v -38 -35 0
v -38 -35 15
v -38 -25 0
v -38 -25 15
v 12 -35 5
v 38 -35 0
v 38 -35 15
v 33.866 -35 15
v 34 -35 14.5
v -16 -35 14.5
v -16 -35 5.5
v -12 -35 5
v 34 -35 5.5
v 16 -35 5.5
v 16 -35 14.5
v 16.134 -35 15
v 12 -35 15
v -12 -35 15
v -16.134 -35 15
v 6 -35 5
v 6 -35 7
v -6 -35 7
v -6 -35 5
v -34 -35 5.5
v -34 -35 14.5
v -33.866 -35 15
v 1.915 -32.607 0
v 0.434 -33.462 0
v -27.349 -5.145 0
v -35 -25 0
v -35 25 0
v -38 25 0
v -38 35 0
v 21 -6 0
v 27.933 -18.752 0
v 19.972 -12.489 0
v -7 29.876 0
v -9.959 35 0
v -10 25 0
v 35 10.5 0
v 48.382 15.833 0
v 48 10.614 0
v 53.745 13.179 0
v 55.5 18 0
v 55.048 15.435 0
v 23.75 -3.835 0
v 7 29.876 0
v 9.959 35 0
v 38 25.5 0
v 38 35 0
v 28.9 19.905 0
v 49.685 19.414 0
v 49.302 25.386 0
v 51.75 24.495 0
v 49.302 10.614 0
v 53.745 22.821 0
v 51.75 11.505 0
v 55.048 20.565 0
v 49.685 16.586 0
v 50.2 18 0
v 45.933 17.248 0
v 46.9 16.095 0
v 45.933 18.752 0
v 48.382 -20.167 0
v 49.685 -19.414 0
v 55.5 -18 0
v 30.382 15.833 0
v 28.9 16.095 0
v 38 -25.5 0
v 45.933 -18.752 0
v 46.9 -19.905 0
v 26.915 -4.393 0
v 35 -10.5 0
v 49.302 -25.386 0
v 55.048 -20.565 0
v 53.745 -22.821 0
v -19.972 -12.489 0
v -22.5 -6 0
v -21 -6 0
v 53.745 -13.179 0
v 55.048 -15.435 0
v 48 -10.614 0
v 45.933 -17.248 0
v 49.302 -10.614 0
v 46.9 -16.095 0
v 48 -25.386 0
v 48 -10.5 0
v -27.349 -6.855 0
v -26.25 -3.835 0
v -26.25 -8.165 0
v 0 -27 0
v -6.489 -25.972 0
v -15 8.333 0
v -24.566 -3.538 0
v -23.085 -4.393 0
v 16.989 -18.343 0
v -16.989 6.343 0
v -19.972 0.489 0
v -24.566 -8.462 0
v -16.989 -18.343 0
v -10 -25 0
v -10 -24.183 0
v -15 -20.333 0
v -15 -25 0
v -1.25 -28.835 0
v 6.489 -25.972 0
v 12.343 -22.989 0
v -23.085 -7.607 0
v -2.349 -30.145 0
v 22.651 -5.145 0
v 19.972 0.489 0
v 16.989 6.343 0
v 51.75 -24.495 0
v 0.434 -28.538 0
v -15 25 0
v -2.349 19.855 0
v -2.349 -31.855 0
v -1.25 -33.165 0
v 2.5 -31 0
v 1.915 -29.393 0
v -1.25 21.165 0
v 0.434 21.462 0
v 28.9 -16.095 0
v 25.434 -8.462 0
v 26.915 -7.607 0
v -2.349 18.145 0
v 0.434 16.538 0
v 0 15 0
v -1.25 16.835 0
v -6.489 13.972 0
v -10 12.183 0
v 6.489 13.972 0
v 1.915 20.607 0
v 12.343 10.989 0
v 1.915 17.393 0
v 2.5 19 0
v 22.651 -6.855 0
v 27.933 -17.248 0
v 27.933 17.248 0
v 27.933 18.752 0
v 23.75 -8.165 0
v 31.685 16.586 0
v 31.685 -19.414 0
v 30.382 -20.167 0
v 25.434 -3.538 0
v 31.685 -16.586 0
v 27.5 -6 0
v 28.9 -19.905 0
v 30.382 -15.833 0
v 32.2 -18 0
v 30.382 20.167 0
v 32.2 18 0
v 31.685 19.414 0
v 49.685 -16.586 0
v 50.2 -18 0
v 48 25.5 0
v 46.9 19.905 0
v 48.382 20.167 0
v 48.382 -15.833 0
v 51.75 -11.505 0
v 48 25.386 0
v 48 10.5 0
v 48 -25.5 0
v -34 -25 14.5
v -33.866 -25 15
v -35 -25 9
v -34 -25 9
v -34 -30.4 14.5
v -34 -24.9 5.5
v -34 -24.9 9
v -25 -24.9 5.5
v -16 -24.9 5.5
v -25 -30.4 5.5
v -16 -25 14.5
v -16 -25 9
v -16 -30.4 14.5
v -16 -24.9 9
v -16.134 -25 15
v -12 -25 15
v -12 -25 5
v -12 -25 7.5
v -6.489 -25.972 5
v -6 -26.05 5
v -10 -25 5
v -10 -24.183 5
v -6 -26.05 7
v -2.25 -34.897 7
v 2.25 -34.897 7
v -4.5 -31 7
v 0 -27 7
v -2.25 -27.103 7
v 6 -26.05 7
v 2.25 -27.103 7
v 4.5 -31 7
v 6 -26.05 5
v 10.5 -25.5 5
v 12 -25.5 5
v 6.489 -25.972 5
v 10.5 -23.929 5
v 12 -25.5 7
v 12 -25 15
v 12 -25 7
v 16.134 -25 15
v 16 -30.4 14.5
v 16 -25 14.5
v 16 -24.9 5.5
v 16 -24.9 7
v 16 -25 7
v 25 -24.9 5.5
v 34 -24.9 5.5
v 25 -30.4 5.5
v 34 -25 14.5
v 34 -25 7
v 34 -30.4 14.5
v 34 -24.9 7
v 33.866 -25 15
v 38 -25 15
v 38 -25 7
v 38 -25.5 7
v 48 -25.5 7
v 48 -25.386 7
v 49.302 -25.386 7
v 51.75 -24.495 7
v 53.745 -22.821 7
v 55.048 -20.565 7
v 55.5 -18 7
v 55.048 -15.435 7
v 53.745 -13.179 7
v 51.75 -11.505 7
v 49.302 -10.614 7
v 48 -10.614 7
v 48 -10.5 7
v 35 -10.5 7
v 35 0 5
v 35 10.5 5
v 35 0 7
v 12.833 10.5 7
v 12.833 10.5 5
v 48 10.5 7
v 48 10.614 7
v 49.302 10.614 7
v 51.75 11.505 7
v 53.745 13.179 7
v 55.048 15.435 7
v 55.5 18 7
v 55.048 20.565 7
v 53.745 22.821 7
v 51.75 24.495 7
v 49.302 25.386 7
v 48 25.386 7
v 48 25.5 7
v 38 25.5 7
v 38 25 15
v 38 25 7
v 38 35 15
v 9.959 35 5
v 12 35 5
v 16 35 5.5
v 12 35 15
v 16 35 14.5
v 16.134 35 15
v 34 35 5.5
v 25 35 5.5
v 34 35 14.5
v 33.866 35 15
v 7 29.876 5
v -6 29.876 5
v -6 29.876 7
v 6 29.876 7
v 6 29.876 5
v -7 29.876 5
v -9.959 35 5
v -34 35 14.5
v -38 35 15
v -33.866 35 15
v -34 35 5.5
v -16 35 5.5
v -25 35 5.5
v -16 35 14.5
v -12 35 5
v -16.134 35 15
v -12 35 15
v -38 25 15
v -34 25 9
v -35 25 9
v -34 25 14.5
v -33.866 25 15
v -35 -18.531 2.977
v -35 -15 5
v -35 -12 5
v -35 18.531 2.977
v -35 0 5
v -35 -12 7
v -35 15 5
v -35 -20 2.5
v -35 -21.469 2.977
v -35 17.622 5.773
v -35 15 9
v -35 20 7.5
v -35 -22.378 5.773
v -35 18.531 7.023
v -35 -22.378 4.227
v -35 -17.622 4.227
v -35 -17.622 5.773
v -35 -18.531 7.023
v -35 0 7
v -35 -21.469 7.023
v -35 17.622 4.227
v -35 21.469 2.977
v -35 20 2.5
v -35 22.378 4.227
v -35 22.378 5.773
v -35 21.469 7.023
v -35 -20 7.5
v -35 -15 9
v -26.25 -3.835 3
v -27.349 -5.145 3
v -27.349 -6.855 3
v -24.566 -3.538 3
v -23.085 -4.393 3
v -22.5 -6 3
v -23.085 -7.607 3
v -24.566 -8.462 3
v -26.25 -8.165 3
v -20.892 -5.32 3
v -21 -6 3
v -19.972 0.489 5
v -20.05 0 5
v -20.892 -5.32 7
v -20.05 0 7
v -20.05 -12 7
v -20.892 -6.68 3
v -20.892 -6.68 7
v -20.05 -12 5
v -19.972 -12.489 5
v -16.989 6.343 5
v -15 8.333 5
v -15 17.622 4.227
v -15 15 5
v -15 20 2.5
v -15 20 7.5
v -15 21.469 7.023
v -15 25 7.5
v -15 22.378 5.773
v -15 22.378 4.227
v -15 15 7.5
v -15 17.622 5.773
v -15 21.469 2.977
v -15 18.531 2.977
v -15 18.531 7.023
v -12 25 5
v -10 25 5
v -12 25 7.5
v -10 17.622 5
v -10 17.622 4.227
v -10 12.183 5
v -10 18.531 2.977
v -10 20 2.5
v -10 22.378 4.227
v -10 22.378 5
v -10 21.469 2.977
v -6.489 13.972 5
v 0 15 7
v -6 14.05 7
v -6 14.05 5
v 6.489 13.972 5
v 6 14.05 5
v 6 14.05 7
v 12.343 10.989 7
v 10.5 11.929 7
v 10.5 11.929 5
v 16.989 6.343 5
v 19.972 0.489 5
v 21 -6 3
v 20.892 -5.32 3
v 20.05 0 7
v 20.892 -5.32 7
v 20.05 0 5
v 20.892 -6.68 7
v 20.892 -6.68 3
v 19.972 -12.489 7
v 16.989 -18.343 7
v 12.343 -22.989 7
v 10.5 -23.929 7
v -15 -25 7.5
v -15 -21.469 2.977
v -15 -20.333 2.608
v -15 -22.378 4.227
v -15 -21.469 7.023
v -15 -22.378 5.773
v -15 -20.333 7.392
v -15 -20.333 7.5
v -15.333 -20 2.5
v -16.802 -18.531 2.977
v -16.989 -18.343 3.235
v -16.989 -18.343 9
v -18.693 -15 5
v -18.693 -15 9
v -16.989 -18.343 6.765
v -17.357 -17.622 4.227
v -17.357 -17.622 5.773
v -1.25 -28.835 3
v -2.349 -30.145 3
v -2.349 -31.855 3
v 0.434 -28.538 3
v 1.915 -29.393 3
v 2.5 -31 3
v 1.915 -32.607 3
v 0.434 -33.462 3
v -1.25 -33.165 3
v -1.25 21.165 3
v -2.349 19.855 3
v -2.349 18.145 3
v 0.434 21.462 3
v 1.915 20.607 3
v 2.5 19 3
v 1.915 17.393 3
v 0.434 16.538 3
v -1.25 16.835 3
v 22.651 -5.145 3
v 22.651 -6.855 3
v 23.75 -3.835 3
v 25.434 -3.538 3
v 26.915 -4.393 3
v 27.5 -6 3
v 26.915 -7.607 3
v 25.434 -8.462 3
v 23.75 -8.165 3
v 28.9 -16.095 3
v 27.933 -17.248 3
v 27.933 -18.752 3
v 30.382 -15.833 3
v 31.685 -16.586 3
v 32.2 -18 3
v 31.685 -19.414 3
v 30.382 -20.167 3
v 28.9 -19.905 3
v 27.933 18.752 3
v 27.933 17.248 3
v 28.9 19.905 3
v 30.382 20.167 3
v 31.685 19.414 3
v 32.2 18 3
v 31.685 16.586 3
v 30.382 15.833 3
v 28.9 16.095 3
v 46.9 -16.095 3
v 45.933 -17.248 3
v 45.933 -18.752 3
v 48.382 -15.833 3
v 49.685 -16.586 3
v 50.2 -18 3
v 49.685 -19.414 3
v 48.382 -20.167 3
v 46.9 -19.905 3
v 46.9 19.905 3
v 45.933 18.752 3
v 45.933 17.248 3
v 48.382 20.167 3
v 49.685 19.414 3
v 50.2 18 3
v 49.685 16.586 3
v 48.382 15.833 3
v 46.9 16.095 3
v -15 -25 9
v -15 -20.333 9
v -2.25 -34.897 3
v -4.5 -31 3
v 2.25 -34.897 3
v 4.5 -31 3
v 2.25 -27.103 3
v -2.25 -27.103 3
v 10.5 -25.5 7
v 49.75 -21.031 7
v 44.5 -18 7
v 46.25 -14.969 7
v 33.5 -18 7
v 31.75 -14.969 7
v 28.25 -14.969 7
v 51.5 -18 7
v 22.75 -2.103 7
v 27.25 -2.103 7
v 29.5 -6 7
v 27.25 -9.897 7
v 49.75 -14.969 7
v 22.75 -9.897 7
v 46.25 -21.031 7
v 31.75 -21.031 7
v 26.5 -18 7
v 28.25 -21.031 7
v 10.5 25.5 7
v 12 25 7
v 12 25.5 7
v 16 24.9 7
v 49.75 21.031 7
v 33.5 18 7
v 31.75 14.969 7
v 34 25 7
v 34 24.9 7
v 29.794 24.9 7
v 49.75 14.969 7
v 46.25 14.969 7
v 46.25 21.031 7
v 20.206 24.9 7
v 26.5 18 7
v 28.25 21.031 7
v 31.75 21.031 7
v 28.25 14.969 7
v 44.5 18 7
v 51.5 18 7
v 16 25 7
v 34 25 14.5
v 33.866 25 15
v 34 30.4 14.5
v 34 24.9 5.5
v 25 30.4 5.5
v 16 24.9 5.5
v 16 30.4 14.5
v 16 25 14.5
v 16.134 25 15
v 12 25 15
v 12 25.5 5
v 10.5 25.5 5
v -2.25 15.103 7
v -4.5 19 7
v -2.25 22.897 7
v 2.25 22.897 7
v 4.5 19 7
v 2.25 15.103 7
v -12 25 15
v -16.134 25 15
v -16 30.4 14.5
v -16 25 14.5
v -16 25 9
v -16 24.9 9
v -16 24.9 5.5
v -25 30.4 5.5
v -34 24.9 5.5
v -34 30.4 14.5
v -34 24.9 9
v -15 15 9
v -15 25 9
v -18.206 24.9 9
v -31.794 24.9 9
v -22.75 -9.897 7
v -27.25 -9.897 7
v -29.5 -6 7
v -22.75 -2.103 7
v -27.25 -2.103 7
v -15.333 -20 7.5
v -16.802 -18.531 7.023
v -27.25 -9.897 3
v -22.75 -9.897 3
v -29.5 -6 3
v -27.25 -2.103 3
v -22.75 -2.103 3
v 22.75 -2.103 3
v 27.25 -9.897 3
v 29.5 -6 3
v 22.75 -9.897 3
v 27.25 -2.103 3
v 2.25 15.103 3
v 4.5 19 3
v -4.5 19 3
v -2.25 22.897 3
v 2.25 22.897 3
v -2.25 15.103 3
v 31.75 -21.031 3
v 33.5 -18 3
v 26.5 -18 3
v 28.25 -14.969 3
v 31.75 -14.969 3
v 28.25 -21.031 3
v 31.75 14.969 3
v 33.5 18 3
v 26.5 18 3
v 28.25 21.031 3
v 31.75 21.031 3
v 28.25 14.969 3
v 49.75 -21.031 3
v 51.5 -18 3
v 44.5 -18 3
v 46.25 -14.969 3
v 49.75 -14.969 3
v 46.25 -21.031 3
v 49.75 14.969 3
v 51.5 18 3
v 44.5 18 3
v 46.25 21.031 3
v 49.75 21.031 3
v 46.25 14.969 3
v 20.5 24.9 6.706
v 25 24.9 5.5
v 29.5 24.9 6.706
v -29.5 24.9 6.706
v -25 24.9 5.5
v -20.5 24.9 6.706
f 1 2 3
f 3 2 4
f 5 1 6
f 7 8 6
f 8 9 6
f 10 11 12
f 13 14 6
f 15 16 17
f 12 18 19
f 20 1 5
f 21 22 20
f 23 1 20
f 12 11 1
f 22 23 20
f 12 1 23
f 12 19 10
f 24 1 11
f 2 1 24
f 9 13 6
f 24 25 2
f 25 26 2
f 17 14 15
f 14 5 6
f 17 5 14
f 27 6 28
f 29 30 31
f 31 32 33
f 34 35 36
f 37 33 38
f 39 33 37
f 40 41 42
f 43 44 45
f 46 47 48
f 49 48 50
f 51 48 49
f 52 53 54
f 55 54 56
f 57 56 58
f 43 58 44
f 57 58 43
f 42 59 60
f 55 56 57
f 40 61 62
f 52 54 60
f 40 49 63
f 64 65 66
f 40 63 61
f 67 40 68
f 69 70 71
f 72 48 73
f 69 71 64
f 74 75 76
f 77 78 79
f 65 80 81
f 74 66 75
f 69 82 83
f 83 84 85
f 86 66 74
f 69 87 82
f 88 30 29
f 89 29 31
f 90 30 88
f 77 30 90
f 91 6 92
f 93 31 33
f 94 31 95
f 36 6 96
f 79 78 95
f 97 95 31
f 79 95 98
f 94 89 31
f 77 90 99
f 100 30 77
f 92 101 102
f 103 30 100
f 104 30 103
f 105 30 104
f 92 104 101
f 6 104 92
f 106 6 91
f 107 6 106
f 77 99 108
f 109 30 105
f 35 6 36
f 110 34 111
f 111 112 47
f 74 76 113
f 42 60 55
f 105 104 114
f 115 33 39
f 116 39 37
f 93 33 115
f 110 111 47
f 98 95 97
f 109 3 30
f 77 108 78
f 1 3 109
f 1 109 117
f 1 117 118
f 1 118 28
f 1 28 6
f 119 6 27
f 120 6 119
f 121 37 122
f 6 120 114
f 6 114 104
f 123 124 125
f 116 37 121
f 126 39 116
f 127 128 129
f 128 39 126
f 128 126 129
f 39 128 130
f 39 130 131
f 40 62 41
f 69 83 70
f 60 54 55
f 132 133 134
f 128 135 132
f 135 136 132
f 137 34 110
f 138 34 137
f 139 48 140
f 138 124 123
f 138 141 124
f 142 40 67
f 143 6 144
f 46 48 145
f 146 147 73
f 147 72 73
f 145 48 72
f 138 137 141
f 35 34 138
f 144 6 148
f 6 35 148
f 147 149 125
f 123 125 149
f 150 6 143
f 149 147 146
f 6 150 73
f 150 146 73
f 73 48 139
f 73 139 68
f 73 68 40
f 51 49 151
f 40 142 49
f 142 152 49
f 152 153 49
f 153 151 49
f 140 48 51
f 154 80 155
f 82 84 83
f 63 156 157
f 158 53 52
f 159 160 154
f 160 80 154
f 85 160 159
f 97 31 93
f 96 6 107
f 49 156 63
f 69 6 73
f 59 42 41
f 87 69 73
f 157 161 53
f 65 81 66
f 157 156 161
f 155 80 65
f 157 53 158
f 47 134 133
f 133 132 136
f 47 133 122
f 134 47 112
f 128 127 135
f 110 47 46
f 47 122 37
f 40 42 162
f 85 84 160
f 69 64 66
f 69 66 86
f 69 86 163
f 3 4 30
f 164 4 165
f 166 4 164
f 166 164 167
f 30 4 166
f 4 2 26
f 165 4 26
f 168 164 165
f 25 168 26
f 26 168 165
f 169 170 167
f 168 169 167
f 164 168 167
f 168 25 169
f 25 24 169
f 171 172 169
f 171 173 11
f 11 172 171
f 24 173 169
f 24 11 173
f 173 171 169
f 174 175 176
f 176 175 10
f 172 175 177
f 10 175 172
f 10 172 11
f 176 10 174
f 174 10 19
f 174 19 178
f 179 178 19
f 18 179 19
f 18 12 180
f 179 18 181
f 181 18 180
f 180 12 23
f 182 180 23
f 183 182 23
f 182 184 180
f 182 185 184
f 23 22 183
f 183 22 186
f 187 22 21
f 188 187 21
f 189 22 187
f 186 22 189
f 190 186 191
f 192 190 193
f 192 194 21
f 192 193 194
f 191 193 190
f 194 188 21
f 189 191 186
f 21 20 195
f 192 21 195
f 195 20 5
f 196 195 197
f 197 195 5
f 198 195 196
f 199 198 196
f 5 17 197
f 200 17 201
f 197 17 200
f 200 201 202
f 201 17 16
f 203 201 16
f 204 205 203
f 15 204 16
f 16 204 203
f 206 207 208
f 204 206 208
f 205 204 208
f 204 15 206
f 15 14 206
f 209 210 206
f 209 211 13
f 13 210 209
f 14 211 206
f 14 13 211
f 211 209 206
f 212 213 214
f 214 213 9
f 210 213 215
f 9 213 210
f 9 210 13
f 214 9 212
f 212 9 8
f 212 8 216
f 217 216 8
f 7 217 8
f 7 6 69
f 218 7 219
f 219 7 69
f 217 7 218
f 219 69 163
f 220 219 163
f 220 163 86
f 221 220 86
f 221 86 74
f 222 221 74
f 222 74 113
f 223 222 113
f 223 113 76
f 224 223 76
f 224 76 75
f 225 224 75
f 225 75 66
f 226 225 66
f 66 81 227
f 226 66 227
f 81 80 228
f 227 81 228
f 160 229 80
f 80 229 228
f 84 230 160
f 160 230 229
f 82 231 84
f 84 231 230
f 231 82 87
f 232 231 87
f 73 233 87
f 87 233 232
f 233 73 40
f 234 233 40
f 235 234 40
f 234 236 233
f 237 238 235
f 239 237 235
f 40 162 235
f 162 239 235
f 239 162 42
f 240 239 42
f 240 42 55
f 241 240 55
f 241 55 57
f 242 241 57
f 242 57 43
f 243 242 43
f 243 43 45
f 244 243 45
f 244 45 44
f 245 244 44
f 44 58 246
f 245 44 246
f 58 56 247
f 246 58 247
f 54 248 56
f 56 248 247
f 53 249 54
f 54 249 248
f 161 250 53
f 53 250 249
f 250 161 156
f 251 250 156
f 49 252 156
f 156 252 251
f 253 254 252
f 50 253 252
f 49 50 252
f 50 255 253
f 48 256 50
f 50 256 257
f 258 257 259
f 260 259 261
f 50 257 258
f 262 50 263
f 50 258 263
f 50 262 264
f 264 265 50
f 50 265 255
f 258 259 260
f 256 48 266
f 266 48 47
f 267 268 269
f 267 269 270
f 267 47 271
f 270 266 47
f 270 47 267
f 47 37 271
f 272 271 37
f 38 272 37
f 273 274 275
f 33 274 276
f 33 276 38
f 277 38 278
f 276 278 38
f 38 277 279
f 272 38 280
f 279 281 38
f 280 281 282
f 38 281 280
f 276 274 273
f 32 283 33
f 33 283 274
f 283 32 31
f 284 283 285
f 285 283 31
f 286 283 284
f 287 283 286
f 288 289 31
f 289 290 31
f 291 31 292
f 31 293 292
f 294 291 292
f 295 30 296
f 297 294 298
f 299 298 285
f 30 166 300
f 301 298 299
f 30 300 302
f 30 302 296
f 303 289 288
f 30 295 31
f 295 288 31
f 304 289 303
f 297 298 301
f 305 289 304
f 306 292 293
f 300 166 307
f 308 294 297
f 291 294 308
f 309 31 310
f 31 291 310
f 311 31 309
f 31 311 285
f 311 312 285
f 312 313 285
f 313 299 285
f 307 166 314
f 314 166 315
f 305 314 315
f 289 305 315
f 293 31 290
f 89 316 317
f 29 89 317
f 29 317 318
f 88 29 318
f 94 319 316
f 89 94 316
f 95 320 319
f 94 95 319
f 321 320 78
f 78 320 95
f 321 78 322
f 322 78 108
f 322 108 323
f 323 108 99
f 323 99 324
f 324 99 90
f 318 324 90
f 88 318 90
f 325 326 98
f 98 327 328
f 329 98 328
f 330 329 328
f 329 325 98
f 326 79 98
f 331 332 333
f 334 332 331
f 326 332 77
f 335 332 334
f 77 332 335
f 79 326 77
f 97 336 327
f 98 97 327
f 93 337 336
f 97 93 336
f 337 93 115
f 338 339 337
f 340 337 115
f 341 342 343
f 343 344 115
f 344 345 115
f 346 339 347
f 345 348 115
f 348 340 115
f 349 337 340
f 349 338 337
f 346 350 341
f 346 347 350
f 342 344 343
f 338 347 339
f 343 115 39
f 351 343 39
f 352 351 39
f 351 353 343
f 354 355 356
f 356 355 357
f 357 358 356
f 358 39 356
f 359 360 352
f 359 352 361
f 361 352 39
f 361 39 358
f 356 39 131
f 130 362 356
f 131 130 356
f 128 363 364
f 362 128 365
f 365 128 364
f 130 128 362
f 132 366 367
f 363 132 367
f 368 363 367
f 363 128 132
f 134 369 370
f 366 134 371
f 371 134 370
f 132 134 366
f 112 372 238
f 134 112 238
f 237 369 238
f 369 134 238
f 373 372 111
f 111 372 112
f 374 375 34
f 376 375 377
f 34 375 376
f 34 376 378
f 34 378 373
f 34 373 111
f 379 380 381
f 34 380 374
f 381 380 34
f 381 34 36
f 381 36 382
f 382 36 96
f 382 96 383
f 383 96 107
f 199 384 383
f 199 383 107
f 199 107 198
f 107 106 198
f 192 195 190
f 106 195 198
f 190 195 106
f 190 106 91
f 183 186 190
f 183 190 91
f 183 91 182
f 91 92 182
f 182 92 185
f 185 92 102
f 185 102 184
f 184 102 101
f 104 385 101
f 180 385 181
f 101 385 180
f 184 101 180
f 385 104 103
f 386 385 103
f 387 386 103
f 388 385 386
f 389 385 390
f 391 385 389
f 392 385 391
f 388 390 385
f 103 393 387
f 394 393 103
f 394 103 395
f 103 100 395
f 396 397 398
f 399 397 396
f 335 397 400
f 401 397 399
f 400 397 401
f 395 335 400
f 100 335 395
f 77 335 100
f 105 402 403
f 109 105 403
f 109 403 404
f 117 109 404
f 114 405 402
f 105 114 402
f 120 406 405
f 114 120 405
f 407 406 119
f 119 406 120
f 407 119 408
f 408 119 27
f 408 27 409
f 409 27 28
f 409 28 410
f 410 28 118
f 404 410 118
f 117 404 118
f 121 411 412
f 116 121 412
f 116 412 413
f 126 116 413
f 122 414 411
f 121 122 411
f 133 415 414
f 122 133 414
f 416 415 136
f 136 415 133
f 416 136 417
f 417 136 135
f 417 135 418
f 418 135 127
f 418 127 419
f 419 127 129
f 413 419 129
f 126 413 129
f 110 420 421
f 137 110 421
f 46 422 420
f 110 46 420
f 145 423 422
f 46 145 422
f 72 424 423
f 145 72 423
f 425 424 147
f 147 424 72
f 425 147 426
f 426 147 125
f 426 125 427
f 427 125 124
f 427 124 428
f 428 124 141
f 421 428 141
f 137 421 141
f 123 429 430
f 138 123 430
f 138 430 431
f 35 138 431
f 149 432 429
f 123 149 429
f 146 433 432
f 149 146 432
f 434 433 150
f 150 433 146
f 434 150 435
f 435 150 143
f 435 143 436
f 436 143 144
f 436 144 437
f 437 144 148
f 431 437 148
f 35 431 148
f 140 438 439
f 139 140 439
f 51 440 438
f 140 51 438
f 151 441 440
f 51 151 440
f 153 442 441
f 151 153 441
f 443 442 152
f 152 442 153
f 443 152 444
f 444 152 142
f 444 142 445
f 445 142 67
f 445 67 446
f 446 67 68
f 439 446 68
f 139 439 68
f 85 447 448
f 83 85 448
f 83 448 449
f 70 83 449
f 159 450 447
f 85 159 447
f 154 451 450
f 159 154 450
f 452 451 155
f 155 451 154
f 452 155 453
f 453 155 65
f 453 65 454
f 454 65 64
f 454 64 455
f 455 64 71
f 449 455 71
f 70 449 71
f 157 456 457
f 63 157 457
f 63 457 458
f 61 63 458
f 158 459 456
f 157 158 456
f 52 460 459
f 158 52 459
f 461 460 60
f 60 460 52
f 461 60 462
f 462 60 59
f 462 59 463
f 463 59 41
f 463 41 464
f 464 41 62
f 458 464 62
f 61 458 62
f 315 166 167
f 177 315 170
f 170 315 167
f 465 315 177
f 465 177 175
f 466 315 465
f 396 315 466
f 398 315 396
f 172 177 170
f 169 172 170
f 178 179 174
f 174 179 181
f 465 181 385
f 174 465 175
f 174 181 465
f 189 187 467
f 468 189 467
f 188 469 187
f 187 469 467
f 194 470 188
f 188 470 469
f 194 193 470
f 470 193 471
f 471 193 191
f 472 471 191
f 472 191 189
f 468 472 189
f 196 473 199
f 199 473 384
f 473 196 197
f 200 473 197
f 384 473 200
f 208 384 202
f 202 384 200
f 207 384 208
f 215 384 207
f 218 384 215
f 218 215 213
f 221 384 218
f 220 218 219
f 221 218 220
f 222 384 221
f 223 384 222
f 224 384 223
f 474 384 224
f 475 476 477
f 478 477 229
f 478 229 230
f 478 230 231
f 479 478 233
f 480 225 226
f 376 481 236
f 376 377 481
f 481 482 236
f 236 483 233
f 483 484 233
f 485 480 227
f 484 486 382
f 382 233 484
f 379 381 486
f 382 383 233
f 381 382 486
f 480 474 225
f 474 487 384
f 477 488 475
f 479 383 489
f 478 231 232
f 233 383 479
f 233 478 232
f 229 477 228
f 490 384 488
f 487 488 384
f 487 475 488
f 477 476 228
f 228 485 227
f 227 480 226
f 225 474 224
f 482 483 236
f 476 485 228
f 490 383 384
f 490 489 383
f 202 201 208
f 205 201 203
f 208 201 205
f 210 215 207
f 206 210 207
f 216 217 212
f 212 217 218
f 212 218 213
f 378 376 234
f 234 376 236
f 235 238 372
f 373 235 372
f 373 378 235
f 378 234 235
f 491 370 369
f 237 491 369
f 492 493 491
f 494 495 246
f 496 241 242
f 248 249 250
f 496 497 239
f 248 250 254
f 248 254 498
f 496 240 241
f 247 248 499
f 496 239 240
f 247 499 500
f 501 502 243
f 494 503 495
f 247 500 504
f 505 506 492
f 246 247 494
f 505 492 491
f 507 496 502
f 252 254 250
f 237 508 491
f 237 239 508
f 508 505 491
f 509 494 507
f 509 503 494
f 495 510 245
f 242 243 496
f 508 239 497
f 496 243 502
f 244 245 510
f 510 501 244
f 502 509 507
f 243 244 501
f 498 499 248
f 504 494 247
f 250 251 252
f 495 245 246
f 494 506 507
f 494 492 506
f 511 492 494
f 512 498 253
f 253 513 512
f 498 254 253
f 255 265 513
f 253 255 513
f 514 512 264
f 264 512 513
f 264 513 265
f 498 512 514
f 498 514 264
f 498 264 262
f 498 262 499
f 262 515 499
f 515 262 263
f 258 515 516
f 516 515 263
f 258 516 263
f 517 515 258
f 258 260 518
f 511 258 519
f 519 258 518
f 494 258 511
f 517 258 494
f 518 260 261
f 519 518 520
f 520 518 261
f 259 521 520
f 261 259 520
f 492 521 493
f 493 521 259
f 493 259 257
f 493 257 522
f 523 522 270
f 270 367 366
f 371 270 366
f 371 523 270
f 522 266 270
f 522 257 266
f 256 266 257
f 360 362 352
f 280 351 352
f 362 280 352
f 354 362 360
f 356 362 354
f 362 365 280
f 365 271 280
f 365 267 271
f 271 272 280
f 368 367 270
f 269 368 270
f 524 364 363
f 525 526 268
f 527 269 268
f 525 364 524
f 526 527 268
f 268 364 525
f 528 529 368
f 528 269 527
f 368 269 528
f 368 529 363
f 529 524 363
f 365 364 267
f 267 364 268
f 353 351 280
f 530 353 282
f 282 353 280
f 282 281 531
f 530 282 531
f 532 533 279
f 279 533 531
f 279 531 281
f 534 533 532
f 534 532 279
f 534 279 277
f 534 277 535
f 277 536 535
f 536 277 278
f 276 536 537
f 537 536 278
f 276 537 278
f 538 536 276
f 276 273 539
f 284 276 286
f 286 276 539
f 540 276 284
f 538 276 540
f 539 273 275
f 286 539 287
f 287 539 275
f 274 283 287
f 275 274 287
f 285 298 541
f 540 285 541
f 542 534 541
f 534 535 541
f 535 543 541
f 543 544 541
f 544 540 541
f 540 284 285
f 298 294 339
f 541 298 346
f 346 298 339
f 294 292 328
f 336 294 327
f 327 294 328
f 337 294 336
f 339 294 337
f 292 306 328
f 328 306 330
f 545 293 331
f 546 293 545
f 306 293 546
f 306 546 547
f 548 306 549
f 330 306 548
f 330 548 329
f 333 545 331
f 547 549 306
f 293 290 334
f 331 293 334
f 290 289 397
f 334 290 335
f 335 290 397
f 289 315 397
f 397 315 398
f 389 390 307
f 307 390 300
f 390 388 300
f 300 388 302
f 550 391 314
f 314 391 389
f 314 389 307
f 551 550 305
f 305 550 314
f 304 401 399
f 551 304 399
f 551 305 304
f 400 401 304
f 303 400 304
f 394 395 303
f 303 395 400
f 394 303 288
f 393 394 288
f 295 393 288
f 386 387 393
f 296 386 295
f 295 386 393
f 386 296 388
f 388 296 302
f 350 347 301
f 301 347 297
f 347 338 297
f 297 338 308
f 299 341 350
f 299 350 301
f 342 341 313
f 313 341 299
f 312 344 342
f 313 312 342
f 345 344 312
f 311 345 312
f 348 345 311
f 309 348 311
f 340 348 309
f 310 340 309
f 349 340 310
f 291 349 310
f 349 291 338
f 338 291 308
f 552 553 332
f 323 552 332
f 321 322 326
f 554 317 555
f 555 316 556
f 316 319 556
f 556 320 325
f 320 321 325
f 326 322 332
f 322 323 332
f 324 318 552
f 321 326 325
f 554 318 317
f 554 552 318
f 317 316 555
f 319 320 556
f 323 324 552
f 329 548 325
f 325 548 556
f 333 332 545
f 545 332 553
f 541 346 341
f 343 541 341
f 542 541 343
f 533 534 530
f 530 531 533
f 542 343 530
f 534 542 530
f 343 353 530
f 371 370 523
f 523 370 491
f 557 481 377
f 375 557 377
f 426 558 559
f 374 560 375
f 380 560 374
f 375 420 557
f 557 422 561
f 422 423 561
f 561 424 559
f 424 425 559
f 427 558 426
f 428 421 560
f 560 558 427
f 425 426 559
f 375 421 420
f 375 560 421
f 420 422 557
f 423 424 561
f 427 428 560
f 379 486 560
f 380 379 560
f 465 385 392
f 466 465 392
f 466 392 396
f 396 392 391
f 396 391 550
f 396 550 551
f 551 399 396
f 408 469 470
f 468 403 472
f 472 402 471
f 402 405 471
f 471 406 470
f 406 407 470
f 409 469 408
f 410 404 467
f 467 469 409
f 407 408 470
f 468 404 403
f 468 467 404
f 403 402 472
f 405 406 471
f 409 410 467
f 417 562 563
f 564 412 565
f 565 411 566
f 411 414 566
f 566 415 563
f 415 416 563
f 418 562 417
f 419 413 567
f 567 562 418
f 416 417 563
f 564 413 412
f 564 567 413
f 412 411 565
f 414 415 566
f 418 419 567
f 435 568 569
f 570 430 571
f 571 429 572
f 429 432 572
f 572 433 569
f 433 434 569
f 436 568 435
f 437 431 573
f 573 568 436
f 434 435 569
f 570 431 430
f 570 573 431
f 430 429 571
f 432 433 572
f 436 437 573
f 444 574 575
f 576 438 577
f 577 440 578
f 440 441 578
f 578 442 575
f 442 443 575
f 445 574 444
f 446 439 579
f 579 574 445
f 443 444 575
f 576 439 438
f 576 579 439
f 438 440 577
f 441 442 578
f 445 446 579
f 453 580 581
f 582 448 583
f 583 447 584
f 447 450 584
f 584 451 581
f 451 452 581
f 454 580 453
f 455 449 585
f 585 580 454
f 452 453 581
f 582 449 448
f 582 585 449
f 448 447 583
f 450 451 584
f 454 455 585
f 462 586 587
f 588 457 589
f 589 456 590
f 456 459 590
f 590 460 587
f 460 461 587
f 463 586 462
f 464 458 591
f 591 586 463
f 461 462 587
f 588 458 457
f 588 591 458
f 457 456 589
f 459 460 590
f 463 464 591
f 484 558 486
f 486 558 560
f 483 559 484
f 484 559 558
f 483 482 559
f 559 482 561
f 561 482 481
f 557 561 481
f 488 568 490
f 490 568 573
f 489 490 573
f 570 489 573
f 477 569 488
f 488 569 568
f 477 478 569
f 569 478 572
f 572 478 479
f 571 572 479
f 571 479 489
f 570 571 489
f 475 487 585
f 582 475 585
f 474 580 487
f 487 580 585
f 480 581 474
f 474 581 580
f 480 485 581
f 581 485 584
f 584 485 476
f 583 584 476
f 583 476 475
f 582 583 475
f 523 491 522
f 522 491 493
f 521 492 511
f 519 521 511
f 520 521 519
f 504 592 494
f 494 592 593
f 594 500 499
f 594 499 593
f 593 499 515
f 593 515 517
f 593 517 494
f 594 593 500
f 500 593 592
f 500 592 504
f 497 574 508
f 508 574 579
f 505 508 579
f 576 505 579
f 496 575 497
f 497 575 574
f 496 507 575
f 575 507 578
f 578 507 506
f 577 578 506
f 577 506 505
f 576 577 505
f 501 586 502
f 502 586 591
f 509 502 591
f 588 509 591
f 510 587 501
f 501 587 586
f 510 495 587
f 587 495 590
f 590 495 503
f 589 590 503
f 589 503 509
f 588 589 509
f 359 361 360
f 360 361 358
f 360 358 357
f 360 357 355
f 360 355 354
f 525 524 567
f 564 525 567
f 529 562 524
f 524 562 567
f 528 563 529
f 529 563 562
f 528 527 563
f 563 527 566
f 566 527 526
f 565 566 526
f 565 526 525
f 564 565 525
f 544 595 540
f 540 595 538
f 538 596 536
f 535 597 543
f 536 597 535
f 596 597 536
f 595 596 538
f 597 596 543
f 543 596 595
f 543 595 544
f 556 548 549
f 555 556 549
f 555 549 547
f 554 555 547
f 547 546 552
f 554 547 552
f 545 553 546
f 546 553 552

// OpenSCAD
// file: configuration-metric.scad
// PRUSA Mendel  
// Metric Configuration file
// GNU GPL v2
// Josef Průša
// josefprusa@me.com
// prusadjs.cz
// http://www.reprap.org/wiki/Prusa_Mendel
// http://github.com/prusajr/PrusaMendel

// CONFIGURATION FILE FOR METRIC VARIANT OF PRUSA MENDEL

// M8 rod diameter
m8_diameter = 8.4;

// M8 nut diameter diameter
// Used for $fn nut trick -> cylinder(h = 5, r=m8_nut_diameter, $fn=6, center=true);
m8_nut_diameter = 16.4;

// M4 rod/screw diameter
m4_diameter = 5;

// M4 nut diameter
// Used for $fn nut trick -> cylinder(h = 5, r=m4_nut_diameter, $fn=6, center=true);
m4_nut_diameter = 9;

// M3 rod/screw diameter
m3_diameter = 4.4;

// M3 nut diameter diameter
// Used for $fn nut trick -> cylinder(h = 5, r=m3_nut_diameter, $fn=6, center=true);
m3_nut_diameter = 7;

// Bushing holders diameter
bushing_diameter = 11;

//Motor shaft diameter
motor_shaft=5;

//Bushings
	//Size of rod on which it will slide
	bushing_rodsize = 8;
	
	//Size of whole bushings (diameter because the core is cylinder)
	bushing_outerDiameter = 16;
	
	//How long they are going to be
	bushing_lenght = 11;
	
	// TYPE Can generate three versions
	// 1 - regular old ones
	// 2 - helical ones
	// 3 - holders for brass or any other bought bushings
	bushing_type = 2;
// file: configuration.scad
// PRUSA Mendel  
// Configuration file
// GNU GPL v2
// Josef Průša
// josefprusa@me.com
// prusadjs.cz
// http://www.reprap.org/wiki/Prusa_Mendel
// http://github.com/prusajr/PrusaMendel

// PLESE SELECT ONE OF THE CONFIGURATION FILES
// BY UN-COMMENTING IT

// METRIC VERSION
include <configuration-metric.scad>

// IMPERIAL VERSION (TODO, just place holder)
// Spacexula will do it ;-)
// include <configuration-imperial.scad>

// MINI-HUXLEY VERSION (TODO, just place holder)
// include <configuration-huxley.scad>

// MEGA VERSION (TODO, just place holder)
// include <configuration-mega.scad>
// main file
// PRUSA Mendel  
// X-carriage
// Used for sliding on X axis
// GNU GPL v2
// Josef Průša
// josefprusa@me.com
// prusadjs.cz
// http://www.reprap.org/wiki/Prusa_Mendel
// http://github.com/prusajr/PrusaMendel

include <configuration.scad>

/**
 * Slides on the x-axis with extruder.
 * @id x-carriage
 * @name X carriage
 * @category Printed
 * @using 4 m3x10
 * @using 4 m3washer
 * @using 4 m3nut
 * @using 4 bushing
 */ 

module xcarriage(){


translate(v = [0,0,2.5]) union(){difference(){
	union(){
		//Base block
			cube(size = [70,70,5], center = true);
		//Nut holder base - extruder
			translate(v = [0, 0, 1]) cube(size = [12,70,7], center = true);
			translate(v = [0, -6, 1]) cube(size = [70,12,7], center = true);

		//Nut holder base - belt clamps
		translate(v = [33-(7.5/2), -18, 1]) cube(size = [45-7.5,15,7], center = true);
		translate(v = [33+45/2-7.5, -18, 1]) cylinder(h = 7, r=7.5, $fn=18, center=true);
		translate(v = [33-(7.5/2), 18, 1]) cube(size = [45-7.5,15,7], center = true);
		translate(v = [33+45/2-7.5, 18, 1]) cylinder(h = 7, r=7.5, $fn=18, center=true);

		//Bushing holder
		translate(v = [-25, 30, 5])cube(size = [26,10,15], center = true);
		translate(v = [-25, -30, 5])cube(size = [26,10,15], center = true);
		translate(v = [25, -30, 5])cube(size = [26,10,15], center = true);
		translate(v = [25, 30, 5])cube(size = [26,10,15], center = true);
		
		// fan holder
		translate(v = [-25, 20, 2])  cube(size = [20,10,9], center = true);
		translate(v = [-25, -20, 2]) cube(size = [20,10,9], center = true);

	}
	translate([0,42])cylinder(r=14,h=10,center=true,$fn=6);
	//main cutout
	translate(v = [-12.5,0,0]) cube(size = [5,50,10], center = true);

	translate(v = [25, 30.4, 12]) rotate(a=[90,0,0]) cylinder(h = 11, r=18/2, $fn=12, center=true);
	translate(v = [25, 30.4, 7.5])cube(size = [18,11,9], center = true);
	translate(v = [-25, 30.4, 12]) rotate(a=[90,0,0]) cylinder(h = 11, r=18/2, $fn=12, center=true);
	translate(v = [-25, 30.4, 7.5])cube(size = [18,11,9], center = true);
	translate(v = [25, -30.4, 12]) rotate(a=[90,0,0]) cylinder(h = 11, r=18/2, $fn=12, center=true);
	translate(v = [25, -30.4, 7.5])cube(size = [18,11,9], center = true);
	translate(v = [-25, -30.4, 12]) rotate(a=[90,0,0]) cylinder(h = 11, r=18/2, $fn=12, center=true);
	translate(v = [-25, -30.4, 7.5])cube(size = [18,11,9], center = true);

	// holes for connecting extruder
		translate(v = [0, 0, 0]) {
		
		translate(v = [0, -31, 2]) cylinder(h = 10, r=m4_diameter/2, $fn=9, center=true);
		translate(v = [0, -31, 5]) cylinder(h = 9, r=m4_nut_diameter/2, $fn=6, center=true);
		translate(v = [0, 19, ]) cylinder(h = 20, r=m4_diameter/2, $fn=9, center=true);
		translate(v = [0, 19, 5]) cylinder(h = 9, r=m4_nut_diameter/2, $fn=6, center=true);
		
		// Hotend hole
		translate(v = [0, -6, 0]) cylinder(h = 20, r=21, $fn=20, center=true);

		

#		translate(v = [-25, -6, 2]) cylinder(h = 10, r=m4_diameter/2, $fn=9, center=true);
		translate(v = [-25, -6, 5]) cylinder(h = 9, r=m4_nut_diameter/2, $fn=6, center=true);
		translate(v = [25, -6, ]) cylinder(h = 20, r=m4_diameter/2, $fn=9, center=true);
		translate(v = [25, -6, 5]) cylinder(h = 9, r=m4_nut_diameter/2, $fn=6, center=true);
		
		
		
		}
//belt clamp holes
	translate(v = [30, -18, 2]) cylinder(h = 10, r=m3_diameter/2, $fn=9, center=true);
	translate(v = [30, -18, 5]) cylinder(h = 9, r=m3_nut_diameter/2, $fn=6, center=true);
	translate(v = [48, -18, 2]) cylinder(h = 10, r=m3_diameter/2, $fn=9, center=true);
	translate(v = [48, -18, 5]) cylinder(h = 9, r=m3_nut_diameter/2, $fn=6, center=true);

	translate(v = [30, 18, 2]) cylinder(h = 10, r=m3_diameter/2, $fn=9, center=true);
	translate(v = [30, 18, 5]) cylinder(h = 9, r=m3_nut_diameter/2, $fn=6, center=true);
	translate(v = [48, 18, 2]) cylinder(h = 10, r=m3_diameter/2, $fn=9, center=true);
	translate(v = [48, 18, 5]) cylinder(h = 9, r=m3_nut_diameter/2, $fn=6, center=true);


		translate(v = [-25, -20, 2.5]) rotate(a=[0,90,0]) cylinder(h = 30, r=m4_diameter/2, $fn=10, center=true);

		translate(v = [-25, 20, 2.5]) rotate(a=[0,90,0]) cylinder(h = 30, r=m4_diameter/2, $fn=10, center=true);


}}
}
xcarriage();
